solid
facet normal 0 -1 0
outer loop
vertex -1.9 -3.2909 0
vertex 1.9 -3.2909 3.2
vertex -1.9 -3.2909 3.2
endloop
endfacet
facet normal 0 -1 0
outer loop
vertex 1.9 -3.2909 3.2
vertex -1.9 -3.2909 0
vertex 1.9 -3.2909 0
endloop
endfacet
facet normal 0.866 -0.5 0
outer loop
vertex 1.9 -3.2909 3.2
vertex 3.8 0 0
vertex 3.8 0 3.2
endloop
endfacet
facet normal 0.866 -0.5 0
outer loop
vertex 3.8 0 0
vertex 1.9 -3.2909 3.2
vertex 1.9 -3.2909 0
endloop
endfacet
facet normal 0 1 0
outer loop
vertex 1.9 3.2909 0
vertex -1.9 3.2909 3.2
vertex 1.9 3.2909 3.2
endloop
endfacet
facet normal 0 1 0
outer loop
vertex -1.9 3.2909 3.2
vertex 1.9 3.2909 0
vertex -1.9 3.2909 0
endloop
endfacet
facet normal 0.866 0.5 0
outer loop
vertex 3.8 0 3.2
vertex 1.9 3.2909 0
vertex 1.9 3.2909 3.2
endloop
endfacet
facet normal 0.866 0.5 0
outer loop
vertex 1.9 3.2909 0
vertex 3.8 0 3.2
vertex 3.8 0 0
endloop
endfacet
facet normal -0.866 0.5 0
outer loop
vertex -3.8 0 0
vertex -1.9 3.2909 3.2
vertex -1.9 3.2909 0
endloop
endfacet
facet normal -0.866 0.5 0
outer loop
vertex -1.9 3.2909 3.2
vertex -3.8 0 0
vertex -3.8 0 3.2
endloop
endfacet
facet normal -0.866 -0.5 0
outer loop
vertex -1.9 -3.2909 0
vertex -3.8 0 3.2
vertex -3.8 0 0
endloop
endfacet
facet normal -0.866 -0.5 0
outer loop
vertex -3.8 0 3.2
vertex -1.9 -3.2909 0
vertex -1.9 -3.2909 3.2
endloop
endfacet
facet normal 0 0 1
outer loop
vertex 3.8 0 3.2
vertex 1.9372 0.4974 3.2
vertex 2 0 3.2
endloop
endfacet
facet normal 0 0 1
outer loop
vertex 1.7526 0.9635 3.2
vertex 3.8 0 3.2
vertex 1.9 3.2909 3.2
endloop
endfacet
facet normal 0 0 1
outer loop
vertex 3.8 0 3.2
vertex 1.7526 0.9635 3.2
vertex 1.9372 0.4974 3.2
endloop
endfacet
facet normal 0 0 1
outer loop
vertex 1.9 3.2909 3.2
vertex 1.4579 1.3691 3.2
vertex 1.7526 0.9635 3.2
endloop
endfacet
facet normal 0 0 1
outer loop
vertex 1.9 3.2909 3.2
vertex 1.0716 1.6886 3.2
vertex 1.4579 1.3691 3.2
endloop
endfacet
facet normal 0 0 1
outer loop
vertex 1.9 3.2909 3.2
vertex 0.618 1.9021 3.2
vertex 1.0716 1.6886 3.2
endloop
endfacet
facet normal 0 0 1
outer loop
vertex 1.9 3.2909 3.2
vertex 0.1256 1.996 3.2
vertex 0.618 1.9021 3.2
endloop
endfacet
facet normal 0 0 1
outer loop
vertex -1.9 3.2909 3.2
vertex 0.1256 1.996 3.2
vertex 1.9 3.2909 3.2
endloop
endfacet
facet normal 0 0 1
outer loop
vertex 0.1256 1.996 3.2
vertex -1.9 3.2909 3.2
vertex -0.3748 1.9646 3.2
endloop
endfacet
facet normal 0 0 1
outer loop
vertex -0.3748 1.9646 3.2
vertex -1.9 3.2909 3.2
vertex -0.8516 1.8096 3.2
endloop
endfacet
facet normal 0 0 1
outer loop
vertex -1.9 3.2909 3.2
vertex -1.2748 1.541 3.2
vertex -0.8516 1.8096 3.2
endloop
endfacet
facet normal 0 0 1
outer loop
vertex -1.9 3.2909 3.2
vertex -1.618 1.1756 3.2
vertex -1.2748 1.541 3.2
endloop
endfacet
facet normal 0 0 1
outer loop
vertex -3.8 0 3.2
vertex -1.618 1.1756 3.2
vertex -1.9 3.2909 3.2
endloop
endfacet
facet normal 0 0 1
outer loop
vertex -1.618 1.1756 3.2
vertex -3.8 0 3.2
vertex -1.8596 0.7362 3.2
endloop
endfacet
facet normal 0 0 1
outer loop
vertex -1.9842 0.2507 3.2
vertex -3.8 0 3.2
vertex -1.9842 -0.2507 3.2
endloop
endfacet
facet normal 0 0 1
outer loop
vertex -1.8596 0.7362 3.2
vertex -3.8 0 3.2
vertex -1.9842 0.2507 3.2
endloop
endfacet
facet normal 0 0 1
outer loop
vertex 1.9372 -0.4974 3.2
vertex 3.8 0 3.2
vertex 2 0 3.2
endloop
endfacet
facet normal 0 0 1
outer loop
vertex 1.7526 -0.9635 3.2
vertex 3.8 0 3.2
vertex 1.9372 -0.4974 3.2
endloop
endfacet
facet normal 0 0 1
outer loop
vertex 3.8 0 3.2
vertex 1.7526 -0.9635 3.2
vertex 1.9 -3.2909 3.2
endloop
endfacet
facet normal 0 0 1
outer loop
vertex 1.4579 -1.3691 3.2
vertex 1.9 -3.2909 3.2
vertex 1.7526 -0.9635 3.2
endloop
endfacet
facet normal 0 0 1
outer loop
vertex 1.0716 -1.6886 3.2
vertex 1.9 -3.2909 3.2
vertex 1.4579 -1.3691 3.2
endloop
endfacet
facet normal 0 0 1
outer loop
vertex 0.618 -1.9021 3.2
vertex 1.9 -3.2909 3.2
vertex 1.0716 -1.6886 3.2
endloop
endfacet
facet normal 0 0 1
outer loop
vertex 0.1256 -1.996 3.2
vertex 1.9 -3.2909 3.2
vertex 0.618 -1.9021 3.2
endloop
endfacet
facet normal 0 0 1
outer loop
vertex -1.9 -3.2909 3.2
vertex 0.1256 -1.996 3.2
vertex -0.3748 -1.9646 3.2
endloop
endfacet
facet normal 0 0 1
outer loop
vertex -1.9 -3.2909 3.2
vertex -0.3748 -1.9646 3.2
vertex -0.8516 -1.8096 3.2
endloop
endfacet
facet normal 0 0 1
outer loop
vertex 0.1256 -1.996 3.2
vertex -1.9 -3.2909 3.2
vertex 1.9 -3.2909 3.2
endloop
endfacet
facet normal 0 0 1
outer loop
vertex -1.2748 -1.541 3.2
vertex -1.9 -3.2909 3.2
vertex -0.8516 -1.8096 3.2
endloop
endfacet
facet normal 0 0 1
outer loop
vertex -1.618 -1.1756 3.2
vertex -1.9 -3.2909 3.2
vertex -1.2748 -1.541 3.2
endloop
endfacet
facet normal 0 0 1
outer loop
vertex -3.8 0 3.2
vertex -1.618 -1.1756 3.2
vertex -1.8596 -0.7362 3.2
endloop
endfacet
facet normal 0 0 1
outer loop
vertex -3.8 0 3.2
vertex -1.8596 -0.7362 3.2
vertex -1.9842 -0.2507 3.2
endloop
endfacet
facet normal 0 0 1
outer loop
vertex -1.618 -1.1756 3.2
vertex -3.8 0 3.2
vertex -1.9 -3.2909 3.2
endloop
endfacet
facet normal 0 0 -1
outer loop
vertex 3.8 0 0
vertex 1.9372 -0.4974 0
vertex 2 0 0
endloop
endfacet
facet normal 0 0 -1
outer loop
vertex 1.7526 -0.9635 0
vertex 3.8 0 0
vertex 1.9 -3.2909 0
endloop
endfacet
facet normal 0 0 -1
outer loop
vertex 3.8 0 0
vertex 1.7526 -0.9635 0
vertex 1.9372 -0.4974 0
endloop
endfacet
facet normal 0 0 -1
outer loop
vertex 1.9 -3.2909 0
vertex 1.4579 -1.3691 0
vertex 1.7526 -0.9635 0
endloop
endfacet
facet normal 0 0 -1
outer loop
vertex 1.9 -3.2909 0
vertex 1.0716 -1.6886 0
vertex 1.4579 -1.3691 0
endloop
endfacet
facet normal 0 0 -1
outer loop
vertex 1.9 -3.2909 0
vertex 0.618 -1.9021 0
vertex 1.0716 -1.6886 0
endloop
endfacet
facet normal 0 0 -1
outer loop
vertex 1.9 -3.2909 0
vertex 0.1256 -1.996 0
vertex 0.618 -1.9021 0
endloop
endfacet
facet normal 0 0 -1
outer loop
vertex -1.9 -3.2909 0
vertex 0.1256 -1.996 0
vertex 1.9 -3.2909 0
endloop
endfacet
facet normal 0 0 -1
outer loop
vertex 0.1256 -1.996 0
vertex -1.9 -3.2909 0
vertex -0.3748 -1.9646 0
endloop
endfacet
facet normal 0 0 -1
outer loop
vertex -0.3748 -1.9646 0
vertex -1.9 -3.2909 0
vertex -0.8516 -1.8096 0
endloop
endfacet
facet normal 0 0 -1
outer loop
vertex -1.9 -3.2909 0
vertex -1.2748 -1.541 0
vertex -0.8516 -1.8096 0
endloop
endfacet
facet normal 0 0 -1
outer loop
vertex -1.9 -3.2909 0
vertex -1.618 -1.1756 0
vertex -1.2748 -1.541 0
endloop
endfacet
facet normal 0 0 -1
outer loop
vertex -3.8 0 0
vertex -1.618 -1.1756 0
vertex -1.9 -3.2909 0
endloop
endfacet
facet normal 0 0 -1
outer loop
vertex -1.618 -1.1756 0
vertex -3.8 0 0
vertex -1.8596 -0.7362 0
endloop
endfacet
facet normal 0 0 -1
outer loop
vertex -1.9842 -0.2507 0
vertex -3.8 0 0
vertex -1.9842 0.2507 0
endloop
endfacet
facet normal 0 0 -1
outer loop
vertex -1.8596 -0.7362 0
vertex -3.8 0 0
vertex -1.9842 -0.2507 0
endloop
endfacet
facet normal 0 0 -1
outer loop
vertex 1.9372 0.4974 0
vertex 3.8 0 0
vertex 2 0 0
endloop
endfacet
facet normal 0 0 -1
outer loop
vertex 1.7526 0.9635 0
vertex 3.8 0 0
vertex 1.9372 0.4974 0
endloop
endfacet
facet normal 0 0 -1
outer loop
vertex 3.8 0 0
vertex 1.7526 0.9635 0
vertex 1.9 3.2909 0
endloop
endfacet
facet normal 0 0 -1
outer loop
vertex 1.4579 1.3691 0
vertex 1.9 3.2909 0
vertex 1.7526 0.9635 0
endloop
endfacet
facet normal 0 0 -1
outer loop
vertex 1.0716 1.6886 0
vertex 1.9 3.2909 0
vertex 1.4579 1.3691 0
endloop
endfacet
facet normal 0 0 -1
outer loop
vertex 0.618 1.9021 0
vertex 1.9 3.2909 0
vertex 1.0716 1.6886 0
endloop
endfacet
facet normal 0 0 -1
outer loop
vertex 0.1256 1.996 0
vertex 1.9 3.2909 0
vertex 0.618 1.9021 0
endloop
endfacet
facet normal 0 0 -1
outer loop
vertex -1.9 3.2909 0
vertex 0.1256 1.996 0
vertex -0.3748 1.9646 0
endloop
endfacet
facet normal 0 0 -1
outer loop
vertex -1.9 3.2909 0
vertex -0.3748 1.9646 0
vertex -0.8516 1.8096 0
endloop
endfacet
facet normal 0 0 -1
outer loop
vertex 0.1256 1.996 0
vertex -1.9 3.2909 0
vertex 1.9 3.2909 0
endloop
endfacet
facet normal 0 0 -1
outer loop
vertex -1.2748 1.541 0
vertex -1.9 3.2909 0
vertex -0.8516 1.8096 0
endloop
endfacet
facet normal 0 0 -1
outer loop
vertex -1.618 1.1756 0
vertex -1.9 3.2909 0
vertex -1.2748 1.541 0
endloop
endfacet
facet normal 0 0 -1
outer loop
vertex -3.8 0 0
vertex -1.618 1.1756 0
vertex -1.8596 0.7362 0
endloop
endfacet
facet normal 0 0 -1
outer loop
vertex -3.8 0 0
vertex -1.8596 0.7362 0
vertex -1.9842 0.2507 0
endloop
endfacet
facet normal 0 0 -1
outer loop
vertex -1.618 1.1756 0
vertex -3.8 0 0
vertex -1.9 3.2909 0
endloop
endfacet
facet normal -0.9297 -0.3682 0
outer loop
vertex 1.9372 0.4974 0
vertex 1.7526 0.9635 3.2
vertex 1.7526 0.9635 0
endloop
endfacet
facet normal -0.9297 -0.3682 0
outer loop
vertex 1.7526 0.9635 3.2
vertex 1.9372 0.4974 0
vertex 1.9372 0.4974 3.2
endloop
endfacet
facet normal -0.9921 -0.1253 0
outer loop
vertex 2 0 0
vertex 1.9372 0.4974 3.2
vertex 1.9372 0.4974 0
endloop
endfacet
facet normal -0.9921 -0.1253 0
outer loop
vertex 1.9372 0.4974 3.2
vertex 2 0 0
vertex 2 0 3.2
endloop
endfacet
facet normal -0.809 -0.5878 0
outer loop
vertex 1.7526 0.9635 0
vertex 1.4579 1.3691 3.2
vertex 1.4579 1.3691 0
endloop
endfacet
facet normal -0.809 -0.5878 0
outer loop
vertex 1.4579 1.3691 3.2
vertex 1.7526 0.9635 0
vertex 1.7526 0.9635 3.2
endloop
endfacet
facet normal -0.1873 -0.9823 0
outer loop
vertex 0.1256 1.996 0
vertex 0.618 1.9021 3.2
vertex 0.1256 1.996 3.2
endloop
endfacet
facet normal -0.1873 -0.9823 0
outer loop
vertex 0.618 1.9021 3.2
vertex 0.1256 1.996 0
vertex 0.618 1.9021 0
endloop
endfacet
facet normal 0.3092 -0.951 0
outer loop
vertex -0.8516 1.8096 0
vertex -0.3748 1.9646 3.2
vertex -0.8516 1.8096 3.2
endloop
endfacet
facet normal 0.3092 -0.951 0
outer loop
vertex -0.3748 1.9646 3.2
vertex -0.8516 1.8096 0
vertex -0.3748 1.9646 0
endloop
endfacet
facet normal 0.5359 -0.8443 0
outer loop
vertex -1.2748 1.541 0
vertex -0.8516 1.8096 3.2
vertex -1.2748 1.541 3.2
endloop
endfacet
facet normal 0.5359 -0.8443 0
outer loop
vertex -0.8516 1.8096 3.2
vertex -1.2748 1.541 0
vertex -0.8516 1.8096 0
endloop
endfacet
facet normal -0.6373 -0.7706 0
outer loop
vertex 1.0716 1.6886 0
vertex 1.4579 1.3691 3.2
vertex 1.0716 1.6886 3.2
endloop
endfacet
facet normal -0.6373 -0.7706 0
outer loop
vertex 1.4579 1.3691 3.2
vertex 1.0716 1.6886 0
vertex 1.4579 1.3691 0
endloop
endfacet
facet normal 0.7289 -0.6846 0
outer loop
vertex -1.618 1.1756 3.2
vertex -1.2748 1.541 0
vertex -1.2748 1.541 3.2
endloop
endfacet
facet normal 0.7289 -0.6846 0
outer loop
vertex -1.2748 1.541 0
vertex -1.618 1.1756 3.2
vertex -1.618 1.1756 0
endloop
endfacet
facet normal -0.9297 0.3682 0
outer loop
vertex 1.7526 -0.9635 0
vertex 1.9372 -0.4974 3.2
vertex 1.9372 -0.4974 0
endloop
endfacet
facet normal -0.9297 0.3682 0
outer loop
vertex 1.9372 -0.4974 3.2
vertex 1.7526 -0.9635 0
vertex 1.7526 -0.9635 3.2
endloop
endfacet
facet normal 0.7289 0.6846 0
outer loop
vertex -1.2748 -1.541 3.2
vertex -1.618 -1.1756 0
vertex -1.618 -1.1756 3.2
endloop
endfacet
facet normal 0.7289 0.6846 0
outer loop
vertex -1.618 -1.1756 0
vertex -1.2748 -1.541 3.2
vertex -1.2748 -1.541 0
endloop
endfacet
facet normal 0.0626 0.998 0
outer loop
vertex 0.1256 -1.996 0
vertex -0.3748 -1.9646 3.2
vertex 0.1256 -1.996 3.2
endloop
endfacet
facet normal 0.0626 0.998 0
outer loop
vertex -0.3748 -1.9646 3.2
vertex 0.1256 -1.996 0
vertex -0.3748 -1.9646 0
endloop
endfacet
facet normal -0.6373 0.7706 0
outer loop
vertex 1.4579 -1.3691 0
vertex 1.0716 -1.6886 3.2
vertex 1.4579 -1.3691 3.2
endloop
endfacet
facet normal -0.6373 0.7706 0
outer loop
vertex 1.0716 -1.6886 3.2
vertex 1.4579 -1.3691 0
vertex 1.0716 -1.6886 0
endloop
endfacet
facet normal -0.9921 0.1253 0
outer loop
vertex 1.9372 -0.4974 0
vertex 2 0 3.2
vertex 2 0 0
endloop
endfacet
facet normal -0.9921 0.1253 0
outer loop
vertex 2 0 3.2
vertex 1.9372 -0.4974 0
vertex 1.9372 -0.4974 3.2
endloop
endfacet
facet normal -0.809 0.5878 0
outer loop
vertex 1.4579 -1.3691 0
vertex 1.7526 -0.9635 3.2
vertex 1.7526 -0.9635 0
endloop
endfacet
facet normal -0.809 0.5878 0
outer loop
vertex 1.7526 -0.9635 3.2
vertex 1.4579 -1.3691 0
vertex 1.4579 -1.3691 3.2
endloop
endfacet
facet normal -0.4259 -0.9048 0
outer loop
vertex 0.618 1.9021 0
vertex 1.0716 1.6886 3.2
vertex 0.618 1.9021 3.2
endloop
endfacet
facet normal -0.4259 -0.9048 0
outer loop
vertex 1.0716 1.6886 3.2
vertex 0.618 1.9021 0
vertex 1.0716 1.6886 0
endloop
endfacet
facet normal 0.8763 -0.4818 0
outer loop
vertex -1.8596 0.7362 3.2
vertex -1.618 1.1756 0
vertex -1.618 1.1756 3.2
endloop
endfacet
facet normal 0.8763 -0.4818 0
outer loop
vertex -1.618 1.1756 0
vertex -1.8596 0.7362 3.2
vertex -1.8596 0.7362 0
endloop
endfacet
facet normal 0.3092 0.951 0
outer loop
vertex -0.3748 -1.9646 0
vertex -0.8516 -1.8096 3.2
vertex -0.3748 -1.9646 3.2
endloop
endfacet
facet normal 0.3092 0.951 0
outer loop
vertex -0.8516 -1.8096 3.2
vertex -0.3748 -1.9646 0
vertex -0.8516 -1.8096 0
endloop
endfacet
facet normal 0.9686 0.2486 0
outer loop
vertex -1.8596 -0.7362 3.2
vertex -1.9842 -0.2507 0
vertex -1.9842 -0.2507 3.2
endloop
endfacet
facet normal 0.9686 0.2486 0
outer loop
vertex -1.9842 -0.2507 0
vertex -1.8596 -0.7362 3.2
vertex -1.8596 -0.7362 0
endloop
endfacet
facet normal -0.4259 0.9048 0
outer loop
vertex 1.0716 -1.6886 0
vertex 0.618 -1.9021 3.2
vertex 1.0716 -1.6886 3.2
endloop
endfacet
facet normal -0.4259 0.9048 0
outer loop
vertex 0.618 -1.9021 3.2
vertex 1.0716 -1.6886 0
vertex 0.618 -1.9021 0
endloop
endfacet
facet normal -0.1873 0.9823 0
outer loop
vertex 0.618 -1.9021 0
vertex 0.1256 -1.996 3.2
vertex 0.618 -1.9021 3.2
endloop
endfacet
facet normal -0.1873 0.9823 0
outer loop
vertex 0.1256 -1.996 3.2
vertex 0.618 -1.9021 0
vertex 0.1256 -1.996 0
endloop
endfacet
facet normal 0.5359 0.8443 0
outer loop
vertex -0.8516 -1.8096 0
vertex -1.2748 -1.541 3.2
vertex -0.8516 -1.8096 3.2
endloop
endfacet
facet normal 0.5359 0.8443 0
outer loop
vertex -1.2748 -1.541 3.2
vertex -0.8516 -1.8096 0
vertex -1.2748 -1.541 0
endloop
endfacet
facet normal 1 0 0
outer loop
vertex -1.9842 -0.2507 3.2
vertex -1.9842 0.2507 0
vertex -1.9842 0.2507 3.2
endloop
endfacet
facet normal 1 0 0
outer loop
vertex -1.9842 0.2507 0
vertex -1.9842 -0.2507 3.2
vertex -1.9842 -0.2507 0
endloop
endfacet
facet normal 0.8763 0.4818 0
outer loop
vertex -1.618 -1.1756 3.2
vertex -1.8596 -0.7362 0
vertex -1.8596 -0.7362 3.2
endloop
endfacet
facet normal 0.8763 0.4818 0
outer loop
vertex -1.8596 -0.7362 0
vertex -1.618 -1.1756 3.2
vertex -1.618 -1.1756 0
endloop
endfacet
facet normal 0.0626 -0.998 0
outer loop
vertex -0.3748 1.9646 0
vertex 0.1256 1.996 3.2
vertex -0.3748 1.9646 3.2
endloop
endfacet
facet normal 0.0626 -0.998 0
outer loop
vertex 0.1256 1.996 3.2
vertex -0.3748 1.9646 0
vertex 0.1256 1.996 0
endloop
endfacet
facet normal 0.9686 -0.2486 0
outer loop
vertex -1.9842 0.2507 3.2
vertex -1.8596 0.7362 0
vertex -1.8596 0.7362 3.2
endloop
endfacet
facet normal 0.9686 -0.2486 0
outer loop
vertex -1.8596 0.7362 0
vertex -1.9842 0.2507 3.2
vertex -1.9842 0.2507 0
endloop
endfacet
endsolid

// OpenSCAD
// file: lib/screw_nuts.scad
$fn=25;

module screw_m3(h=20, button=false){
    cylinder(d=3, h=h, center=true);
    translate([0, 0, -h/2-1.5])
        difference(){
            cylinder(d=5.5, h=3, center=true);
            translate([0, 0, -0.8])
                cylinder(d=2.8, h=1.8, $fn=6, center=true);
        }
}

module screw_m4(h=20, button=false){
    cylinder(d=4, h=h, center=true);
    translate([0, 0, -h/2-2])
        difference(){
            if (button) {
                translate([0, 0, 2])
                    scale([1, 1, 6/7.5])
                    sphere(d=7.5);
            } else {
                cylinder(d=7, h=4, center=true);
            }
            if (button) {
                 translate([0, 0, 5])
                    cube([7.6, 7.6, 6], center=true);
            }
            translate([0, 0, -0.8])
                cylinder(d=3.5, h=2.5, $fn=6, center=true);
        }
}

module nut_m3(){
    difference(){
        cylinder(d=6, h=2.4, $fn=6);
        translate([0, 0, -0.05])
            cylinder(d=3, h=2.5);
    }
}

module nut_m4(){
    difference(){
        cylinder(d=7.6, h=3.2, $fn=6);
        translate([0, 0, -0.05])
            cylinder(d=4, h=3.3);
    }
}

module washer_m3(h){
    difference(){
        cylinder(d=8, h=h, center=true);
        cylinder(d=3.4, h=h+0.1, center=true);
    }
}

module washer_m5(h){
    difference(){
        cylinder(d=8, h=h, center=true);
        cylinder(d=5.4, h=h+0.1, center=true);
    }
}
// main file
// NAME: Nut M4
// COLOR: 80
// CATEGORY: Support

include <lib/screw_nuts.scad>

color("silver")
    nut_m4();
